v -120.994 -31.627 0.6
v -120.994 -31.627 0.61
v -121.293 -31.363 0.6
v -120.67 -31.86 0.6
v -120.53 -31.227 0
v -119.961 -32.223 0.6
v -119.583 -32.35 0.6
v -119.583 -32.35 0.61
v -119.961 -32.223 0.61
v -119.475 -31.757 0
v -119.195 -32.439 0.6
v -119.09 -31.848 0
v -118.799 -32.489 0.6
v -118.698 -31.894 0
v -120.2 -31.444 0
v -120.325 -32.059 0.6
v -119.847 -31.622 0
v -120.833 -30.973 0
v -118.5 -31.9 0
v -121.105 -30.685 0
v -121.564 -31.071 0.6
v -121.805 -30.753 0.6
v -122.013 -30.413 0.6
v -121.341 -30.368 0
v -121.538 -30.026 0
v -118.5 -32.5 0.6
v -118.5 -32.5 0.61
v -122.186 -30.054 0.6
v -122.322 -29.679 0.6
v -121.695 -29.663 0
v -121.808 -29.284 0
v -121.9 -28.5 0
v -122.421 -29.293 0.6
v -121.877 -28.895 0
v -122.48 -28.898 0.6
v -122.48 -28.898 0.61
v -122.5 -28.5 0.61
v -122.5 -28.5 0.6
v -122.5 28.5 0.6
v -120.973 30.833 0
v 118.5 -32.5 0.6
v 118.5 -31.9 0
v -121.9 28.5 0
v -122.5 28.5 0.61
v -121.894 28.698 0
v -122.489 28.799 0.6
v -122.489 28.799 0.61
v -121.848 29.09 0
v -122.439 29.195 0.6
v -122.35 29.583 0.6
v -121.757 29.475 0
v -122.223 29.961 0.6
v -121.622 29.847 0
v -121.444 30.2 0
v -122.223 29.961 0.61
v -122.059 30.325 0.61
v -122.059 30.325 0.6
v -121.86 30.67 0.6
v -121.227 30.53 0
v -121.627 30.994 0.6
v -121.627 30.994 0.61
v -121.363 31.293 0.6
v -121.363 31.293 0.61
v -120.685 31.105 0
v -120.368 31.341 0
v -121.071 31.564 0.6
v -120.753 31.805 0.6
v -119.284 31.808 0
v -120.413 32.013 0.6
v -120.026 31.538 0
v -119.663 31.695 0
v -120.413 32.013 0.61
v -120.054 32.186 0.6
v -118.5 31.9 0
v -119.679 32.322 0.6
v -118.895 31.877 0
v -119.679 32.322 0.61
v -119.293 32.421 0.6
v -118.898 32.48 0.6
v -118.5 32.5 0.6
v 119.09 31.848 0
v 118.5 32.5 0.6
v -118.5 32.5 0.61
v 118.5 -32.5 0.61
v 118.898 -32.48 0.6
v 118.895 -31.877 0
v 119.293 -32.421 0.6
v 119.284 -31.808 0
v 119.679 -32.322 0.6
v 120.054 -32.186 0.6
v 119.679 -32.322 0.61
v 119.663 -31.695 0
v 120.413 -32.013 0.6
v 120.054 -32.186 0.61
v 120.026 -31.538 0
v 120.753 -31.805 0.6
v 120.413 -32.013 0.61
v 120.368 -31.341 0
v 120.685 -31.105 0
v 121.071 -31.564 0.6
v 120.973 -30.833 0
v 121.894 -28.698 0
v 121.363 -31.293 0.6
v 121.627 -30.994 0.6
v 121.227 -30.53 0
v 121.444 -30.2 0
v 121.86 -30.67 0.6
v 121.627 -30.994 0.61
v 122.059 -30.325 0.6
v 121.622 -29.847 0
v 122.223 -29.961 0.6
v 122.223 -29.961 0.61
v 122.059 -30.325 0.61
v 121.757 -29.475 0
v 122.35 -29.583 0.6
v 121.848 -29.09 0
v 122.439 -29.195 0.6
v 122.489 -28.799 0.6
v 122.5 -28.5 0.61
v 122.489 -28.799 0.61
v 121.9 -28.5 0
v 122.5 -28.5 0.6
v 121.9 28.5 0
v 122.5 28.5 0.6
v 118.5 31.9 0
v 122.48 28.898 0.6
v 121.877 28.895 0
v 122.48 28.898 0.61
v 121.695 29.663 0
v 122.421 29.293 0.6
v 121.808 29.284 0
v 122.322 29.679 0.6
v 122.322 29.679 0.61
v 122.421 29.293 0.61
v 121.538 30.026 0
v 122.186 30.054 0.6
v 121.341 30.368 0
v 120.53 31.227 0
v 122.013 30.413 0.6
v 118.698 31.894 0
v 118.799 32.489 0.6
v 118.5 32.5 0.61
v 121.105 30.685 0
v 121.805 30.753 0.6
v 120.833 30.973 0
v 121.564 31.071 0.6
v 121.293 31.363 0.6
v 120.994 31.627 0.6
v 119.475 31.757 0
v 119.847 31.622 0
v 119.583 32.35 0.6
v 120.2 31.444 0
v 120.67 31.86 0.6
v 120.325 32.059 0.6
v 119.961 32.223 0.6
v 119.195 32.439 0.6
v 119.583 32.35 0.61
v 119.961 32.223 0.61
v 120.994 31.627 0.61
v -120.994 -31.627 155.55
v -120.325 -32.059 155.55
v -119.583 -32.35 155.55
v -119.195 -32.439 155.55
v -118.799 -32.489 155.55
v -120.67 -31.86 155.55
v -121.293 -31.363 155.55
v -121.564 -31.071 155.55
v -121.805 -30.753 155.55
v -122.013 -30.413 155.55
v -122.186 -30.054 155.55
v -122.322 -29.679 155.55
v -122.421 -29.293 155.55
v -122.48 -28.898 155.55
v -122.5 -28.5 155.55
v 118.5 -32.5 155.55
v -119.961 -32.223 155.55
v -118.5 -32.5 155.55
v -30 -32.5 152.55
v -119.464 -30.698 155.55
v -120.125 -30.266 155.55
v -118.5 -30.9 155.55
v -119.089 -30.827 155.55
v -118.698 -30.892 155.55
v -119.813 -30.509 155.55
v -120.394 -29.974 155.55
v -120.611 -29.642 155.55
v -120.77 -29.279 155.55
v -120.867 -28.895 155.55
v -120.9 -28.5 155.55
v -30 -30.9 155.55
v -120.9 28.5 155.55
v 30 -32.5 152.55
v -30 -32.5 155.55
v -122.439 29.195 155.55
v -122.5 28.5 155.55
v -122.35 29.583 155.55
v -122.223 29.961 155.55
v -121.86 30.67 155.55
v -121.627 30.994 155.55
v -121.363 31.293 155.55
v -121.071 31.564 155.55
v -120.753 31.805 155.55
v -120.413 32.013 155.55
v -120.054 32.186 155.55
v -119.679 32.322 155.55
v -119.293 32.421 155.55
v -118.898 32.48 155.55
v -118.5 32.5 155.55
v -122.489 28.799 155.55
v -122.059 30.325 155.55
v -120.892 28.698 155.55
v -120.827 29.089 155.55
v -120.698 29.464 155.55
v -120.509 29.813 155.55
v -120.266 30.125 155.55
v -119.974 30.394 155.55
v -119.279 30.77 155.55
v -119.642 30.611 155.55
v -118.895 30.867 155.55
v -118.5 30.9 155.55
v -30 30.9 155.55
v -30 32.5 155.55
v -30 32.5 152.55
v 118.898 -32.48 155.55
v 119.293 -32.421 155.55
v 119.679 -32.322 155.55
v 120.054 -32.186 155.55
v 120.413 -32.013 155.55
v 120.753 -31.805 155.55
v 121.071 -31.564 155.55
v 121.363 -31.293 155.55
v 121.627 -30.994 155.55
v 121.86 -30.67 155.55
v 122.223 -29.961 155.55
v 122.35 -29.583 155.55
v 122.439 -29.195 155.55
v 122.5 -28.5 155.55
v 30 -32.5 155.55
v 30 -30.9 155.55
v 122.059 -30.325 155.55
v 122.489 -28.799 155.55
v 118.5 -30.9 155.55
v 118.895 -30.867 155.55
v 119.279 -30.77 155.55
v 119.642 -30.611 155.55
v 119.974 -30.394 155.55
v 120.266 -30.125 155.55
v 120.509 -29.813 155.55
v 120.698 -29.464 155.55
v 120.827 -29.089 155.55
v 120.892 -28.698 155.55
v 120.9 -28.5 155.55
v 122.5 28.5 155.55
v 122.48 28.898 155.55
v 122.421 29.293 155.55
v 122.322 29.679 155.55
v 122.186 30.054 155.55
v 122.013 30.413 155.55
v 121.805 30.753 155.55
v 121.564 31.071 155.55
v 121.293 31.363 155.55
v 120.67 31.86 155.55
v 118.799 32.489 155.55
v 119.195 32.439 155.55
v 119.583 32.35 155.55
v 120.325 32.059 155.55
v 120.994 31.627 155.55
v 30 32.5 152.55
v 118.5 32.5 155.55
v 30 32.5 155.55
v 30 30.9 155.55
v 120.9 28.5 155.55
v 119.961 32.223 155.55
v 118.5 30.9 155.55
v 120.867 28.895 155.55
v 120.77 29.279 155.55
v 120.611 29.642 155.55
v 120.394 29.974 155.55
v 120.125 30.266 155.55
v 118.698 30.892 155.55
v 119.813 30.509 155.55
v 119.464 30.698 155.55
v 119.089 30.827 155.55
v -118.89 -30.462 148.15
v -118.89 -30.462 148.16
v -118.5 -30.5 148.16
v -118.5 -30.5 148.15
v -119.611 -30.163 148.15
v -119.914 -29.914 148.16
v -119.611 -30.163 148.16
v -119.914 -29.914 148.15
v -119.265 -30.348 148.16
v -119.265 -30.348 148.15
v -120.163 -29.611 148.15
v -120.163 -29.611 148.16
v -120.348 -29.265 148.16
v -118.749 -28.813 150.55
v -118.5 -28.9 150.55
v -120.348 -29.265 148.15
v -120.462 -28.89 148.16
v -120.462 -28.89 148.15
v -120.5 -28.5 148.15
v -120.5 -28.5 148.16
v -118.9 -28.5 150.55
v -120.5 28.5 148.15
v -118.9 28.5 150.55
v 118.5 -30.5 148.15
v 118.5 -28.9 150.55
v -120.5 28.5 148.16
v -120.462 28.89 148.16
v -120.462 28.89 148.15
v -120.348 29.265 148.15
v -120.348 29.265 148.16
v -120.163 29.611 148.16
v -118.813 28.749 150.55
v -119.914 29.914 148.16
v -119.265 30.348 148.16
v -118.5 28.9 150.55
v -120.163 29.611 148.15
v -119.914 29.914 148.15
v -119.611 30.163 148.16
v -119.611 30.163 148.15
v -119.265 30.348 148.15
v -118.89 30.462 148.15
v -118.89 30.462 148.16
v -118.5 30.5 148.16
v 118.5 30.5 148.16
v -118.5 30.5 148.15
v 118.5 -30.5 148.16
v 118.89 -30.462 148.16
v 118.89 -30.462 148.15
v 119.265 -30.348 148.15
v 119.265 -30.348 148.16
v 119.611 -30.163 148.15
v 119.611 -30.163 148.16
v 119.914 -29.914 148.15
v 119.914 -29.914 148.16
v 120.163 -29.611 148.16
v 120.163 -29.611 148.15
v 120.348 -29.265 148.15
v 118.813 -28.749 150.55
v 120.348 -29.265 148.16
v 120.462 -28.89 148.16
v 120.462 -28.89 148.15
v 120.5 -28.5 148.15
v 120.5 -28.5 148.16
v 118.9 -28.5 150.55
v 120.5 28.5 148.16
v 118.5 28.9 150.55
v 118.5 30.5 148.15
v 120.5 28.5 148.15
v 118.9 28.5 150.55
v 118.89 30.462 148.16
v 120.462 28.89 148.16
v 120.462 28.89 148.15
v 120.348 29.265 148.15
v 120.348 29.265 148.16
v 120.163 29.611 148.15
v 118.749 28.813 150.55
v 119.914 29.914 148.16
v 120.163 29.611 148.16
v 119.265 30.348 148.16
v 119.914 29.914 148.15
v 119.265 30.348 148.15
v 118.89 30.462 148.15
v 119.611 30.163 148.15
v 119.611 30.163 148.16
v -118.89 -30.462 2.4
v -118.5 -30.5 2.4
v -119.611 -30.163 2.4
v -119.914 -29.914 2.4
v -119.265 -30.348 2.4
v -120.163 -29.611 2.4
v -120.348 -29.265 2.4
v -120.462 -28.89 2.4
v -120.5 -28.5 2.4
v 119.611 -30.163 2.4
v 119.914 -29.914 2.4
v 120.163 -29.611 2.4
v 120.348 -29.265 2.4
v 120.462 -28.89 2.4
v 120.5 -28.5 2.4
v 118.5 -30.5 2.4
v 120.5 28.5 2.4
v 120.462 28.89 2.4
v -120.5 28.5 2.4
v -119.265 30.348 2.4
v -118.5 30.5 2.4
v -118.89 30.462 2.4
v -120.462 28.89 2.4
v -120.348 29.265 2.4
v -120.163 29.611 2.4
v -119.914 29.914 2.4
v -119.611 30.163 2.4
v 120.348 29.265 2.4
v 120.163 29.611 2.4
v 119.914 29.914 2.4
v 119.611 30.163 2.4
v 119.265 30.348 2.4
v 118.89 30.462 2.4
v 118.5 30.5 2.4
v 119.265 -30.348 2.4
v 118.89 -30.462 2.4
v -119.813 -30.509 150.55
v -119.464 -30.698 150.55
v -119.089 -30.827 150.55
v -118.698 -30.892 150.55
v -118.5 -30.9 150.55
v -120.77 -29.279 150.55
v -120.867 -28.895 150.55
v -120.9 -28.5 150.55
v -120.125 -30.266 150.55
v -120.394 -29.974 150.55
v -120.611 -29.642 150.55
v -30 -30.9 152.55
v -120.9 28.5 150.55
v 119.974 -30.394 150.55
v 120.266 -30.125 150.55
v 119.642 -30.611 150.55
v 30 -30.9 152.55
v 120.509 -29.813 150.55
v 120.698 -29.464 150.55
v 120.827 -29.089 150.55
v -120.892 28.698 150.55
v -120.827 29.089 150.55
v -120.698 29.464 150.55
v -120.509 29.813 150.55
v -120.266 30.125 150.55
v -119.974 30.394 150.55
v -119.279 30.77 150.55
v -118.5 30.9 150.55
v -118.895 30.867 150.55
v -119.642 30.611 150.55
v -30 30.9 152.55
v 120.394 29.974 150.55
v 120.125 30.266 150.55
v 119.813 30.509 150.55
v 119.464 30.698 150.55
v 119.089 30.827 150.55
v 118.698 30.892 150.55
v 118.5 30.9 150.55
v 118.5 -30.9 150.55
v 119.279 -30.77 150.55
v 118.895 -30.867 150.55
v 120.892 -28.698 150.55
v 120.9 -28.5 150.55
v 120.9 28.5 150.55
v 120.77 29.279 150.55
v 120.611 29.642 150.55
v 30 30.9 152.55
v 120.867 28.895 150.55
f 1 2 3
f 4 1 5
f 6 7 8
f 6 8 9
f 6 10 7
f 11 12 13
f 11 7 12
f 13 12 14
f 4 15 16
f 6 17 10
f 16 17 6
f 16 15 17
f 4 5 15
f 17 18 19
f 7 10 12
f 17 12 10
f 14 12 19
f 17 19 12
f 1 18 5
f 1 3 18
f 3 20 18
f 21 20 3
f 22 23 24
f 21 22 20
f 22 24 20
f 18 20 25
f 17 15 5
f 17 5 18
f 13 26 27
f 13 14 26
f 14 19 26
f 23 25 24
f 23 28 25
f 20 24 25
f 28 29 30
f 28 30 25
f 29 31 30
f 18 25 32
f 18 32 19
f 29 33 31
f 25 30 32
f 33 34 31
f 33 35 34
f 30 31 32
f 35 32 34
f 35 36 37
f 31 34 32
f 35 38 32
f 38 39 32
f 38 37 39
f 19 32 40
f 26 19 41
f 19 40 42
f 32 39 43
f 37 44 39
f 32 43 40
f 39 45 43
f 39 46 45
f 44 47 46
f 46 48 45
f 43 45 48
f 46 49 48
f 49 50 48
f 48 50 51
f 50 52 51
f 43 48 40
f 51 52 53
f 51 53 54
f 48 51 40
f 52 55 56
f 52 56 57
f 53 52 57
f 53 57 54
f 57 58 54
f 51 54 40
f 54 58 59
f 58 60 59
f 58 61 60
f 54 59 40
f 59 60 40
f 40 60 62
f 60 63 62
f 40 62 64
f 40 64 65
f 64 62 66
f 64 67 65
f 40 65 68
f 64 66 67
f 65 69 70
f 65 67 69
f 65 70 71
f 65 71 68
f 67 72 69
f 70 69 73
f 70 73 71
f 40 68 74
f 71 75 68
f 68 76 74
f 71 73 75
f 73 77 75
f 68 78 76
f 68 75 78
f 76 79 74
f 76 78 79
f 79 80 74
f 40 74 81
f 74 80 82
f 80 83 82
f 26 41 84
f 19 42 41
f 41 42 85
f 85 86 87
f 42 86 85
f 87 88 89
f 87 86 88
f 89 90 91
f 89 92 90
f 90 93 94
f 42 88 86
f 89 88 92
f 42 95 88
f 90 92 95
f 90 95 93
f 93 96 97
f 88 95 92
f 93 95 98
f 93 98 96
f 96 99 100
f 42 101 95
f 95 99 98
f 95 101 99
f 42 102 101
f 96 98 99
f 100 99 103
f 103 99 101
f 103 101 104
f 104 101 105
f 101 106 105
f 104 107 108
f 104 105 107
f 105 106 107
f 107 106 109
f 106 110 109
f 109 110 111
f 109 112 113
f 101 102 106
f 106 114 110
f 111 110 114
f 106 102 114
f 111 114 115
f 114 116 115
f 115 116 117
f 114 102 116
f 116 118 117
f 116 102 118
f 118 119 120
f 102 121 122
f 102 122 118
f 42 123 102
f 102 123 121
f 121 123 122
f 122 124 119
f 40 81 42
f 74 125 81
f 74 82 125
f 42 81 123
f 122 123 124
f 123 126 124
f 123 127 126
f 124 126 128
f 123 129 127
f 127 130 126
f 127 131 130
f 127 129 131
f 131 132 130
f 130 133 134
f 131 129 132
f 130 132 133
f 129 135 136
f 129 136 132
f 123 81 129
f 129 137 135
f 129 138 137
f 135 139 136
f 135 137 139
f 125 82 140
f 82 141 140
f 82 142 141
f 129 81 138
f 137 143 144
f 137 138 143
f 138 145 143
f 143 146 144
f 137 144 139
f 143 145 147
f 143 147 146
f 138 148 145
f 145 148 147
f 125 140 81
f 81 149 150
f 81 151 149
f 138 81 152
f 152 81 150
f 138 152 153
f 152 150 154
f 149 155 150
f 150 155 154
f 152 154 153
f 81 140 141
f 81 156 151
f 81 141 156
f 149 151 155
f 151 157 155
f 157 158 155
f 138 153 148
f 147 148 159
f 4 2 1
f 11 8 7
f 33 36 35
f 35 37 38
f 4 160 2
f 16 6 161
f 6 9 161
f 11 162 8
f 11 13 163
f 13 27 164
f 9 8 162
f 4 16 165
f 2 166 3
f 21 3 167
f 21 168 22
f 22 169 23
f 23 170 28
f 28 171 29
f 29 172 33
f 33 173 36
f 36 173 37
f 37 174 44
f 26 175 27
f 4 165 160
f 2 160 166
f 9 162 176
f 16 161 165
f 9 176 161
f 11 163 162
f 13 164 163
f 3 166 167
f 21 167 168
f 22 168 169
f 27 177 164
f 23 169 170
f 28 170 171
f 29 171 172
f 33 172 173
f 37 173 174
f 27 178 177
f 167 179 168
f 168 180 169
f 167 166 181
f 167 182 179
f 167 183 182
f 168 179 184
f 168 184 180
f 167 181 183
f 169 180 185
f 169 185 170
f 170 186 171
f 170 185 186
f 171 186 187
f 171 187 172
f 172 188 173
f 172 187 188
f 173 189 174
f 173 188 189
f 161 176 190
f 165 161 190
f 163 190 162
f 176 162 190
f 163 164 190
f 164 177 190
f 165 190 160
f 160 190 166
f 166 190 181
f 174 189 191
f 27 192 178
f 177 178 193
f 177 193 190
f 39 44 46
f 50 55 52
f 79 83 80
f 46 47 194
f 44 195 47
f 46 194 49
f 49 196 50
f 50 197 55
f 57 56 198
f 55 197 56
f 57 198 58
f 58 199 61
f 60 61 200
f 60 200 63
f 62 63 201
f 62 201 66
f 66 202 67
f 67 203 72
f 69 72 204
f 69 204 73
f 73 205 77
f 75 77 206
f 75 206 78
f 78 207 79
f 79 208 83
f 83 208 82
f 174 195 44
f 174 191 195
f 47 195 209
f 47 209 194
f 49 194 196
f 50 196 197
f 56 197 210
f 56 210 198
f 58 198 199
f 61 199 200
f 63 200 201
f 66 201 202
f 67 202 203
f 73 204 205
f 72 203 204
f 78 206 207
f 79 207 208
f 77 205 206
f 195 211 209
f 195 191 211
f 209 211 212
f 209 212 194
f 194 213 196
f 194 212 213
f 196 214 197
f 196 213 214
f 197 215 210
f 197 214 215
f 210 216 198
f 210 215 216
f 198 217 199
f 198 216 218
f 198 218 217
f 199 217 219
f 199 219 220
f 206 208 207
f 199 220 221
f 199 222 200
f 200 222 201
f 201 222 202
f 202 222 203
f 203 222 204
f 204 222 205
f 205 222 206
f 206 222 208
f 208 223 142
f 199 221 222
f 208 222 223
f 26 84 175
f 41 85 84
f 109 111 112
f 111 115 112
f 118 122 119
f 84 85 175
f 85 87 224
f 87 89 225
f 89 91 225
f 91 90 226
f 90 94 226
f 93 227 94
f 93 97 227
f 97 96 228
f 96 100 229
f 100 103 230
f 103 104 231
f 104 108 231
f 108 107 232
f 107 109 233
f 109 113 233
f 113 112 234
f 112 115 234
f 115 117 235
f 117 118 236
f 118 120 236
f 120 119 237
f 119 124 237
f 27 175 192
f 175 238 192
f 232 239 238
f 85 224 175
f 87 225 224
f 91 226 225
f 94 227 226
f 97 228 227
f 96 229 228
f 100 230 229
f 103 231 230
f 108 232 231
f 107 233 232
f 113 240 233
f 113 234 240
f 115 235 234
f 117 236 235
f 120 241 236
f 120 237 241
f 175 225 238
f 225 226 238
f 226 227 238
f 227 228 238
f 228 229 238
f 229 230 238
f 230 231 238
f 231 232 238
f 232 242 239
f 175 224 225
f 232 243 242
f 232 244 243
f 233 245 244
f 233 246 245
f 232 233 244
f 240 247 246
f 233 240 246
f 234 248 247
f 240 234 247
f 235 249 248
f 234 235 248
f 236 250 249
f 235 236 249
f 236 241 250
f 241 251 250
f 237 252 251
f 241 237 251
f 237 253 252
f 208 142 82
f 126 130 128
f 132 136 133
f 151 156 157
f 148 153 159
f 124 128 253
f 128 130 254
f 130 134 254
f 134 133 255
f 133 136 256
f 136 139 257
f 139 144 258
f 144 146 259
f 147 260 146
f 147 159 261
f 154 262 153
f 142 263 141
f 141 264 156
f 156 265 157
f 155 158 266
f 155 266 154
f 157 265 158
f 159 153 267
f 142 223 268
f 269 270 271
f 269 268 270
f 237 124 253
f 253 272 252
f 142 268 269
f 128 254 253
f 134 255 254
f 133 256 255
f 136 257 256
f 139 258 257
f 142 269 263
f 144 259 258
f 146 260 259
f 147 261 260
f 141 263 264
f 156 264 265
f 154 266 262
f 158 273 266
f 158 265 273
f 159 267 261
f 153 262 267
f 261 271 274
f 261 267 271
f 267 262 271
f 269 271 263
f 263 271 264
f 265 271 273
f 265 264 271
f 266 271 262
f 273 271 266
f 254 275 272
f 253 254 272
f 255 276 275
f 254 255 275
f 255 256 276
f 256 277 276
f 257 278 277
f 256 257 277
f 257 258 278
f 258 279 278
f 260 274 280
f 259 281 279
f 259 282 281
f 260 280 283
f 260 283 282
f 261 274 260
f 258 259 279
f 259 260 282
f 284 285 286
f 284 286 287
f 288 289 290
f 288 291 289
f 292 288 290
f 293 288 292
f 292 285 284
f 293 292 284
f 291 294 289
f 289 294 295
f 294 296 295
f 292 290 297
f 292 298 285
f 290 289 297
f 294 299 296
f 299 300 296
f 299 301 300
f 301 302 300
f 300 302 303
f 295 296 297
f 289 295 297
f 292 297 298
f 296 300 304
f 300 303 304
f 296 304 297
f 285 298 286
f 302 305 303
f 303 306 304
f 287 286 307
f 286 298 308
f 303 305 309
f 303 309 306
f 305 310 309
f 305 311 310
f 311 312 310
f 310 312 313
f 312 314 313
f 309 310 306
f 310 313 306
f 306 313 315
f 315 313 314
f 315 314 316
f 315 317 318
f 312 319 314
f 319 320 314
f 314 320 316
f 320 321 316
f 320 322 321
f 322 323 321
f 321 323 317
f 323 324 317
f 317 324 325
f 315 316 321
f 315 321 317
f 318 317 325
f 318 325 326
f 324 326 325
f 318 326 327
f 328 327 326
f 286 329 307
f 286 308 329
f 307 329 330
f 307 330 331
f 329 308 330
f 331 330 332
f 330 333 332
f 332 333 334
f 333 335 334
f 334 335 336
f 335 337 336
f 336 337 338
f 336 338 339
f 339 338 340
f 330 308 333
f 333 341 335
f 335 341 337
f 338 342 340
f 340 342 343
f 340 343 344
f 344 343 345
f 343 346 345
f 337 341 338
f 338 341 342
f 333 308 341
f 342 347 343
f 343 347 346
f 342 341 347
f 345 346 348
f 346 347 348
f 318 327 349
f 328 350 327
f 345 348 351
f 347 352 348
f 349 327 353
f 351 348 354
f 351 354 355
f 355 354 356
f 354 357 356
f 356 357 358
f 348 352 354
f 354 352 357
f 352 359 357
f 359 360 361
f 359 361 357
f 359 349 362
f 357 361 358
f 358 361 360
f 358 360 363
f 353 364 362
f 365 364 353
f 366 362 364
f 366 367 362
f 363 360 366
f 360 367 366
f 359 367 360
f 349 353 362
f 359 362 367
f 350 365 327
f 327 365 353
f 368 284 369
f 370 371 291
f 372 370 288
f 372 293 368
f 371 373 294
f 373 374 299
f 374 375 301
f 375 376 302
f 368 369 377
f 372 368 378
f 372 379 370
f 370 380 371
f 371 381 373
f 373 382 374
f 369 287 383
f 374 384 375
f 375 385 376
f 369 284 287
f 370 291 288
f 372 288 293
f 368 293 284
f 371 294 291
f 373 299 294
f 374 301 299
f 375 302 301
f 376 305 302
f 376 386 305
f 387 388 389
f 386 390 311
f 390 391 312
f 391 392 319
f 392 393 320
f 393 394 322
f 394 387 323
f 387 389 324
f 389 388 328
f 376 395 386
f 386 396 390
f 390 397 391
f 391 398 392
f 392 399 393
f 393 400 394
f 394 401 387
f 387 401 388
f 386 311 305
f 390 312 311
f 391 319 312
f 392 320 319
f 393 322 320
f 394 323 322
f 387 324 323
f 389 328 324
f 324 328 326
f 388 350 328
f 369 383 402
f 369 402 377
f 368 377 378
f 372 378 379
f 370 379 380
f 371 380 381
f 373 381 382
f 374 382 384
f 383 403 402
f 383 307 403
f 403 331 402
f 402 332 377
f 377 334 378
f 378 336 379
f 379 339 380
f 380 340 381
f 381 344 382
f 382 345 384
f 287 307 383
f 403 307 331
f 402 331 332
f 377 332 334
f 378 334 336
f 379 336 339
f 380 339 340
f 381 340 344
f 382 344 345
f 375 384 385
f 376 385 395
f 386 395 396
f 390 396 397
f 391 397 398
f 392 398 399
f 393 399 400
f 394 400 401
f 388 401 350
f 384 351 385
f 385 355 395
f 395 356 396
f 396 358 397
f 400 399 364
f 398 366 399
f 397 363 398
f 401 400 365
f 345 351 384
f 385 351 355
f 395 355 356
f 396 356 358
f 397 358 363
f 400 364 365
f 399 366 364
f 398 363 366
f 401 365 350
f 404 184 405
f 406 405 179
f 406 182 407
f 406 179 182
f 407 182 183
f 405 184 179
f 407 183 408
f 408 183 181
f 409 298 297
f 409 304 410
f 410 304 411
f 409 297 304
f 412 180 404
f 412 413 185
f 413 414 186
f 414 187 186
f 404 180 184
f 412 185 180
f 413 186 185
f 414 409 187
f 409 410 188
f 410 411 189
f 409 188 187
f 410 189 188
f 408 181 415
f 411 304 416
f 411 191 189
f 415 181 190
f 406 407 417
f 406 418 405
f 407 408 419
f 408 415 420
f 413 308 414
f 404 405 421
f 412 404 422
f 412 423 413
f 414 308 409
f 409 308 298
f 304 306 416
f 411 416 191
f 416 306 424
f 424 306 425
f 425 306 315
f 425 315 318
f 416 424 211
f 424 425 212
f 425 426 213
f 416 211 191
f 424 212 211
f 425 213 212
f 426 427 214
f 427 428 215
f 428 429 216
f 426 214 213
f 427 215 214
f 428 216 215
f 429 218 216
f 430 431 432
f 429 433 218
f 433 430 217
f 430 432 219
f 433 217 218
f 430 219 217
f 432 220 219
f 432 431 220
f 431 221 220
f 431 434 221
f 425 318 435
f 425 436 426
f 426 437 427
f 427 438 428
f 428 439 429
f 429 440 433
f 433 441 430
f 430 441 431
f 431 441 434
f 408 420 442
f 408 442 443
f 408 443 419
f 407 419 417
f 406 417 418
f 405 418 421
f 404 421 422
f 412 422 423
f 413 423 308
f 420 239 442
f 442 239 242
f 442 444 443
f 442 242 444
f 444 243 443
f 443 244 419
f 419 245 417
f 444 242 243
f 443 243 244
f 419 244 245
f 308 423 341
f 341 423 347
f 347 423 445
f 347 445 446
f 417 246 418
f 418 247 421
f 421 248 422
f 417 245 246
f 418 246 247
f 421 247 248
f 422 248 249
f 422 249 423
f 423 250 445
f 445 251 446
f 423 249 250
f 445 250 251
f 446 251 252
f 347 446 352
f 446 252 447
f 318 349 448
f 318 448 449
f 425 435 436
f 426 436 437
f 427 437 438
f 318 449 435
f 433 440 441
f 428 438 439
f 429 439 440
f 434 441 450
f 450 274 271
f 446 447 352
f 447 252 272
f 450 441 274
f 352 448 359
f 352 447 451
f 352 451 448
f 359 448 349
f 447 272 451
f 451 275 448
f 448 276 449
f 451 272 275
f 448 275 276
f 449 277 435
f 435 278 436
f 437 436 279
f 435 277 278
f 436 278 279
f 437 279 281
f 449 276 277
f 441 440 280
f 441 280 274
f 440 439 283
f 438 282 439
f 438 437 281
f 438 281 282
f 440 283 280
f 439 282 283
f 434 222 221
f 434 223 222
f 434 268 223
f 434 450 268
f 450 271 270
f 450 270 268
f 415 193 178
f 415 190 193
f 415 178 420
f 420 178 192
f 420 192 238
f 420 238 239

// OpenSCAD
// Variant b, box-only print layout (open face up, floor on the bed, support-free).
// The trailing assignments override the defaults from the include.
include <photo_box_003.scad>
variant = "b";
part = "box";
